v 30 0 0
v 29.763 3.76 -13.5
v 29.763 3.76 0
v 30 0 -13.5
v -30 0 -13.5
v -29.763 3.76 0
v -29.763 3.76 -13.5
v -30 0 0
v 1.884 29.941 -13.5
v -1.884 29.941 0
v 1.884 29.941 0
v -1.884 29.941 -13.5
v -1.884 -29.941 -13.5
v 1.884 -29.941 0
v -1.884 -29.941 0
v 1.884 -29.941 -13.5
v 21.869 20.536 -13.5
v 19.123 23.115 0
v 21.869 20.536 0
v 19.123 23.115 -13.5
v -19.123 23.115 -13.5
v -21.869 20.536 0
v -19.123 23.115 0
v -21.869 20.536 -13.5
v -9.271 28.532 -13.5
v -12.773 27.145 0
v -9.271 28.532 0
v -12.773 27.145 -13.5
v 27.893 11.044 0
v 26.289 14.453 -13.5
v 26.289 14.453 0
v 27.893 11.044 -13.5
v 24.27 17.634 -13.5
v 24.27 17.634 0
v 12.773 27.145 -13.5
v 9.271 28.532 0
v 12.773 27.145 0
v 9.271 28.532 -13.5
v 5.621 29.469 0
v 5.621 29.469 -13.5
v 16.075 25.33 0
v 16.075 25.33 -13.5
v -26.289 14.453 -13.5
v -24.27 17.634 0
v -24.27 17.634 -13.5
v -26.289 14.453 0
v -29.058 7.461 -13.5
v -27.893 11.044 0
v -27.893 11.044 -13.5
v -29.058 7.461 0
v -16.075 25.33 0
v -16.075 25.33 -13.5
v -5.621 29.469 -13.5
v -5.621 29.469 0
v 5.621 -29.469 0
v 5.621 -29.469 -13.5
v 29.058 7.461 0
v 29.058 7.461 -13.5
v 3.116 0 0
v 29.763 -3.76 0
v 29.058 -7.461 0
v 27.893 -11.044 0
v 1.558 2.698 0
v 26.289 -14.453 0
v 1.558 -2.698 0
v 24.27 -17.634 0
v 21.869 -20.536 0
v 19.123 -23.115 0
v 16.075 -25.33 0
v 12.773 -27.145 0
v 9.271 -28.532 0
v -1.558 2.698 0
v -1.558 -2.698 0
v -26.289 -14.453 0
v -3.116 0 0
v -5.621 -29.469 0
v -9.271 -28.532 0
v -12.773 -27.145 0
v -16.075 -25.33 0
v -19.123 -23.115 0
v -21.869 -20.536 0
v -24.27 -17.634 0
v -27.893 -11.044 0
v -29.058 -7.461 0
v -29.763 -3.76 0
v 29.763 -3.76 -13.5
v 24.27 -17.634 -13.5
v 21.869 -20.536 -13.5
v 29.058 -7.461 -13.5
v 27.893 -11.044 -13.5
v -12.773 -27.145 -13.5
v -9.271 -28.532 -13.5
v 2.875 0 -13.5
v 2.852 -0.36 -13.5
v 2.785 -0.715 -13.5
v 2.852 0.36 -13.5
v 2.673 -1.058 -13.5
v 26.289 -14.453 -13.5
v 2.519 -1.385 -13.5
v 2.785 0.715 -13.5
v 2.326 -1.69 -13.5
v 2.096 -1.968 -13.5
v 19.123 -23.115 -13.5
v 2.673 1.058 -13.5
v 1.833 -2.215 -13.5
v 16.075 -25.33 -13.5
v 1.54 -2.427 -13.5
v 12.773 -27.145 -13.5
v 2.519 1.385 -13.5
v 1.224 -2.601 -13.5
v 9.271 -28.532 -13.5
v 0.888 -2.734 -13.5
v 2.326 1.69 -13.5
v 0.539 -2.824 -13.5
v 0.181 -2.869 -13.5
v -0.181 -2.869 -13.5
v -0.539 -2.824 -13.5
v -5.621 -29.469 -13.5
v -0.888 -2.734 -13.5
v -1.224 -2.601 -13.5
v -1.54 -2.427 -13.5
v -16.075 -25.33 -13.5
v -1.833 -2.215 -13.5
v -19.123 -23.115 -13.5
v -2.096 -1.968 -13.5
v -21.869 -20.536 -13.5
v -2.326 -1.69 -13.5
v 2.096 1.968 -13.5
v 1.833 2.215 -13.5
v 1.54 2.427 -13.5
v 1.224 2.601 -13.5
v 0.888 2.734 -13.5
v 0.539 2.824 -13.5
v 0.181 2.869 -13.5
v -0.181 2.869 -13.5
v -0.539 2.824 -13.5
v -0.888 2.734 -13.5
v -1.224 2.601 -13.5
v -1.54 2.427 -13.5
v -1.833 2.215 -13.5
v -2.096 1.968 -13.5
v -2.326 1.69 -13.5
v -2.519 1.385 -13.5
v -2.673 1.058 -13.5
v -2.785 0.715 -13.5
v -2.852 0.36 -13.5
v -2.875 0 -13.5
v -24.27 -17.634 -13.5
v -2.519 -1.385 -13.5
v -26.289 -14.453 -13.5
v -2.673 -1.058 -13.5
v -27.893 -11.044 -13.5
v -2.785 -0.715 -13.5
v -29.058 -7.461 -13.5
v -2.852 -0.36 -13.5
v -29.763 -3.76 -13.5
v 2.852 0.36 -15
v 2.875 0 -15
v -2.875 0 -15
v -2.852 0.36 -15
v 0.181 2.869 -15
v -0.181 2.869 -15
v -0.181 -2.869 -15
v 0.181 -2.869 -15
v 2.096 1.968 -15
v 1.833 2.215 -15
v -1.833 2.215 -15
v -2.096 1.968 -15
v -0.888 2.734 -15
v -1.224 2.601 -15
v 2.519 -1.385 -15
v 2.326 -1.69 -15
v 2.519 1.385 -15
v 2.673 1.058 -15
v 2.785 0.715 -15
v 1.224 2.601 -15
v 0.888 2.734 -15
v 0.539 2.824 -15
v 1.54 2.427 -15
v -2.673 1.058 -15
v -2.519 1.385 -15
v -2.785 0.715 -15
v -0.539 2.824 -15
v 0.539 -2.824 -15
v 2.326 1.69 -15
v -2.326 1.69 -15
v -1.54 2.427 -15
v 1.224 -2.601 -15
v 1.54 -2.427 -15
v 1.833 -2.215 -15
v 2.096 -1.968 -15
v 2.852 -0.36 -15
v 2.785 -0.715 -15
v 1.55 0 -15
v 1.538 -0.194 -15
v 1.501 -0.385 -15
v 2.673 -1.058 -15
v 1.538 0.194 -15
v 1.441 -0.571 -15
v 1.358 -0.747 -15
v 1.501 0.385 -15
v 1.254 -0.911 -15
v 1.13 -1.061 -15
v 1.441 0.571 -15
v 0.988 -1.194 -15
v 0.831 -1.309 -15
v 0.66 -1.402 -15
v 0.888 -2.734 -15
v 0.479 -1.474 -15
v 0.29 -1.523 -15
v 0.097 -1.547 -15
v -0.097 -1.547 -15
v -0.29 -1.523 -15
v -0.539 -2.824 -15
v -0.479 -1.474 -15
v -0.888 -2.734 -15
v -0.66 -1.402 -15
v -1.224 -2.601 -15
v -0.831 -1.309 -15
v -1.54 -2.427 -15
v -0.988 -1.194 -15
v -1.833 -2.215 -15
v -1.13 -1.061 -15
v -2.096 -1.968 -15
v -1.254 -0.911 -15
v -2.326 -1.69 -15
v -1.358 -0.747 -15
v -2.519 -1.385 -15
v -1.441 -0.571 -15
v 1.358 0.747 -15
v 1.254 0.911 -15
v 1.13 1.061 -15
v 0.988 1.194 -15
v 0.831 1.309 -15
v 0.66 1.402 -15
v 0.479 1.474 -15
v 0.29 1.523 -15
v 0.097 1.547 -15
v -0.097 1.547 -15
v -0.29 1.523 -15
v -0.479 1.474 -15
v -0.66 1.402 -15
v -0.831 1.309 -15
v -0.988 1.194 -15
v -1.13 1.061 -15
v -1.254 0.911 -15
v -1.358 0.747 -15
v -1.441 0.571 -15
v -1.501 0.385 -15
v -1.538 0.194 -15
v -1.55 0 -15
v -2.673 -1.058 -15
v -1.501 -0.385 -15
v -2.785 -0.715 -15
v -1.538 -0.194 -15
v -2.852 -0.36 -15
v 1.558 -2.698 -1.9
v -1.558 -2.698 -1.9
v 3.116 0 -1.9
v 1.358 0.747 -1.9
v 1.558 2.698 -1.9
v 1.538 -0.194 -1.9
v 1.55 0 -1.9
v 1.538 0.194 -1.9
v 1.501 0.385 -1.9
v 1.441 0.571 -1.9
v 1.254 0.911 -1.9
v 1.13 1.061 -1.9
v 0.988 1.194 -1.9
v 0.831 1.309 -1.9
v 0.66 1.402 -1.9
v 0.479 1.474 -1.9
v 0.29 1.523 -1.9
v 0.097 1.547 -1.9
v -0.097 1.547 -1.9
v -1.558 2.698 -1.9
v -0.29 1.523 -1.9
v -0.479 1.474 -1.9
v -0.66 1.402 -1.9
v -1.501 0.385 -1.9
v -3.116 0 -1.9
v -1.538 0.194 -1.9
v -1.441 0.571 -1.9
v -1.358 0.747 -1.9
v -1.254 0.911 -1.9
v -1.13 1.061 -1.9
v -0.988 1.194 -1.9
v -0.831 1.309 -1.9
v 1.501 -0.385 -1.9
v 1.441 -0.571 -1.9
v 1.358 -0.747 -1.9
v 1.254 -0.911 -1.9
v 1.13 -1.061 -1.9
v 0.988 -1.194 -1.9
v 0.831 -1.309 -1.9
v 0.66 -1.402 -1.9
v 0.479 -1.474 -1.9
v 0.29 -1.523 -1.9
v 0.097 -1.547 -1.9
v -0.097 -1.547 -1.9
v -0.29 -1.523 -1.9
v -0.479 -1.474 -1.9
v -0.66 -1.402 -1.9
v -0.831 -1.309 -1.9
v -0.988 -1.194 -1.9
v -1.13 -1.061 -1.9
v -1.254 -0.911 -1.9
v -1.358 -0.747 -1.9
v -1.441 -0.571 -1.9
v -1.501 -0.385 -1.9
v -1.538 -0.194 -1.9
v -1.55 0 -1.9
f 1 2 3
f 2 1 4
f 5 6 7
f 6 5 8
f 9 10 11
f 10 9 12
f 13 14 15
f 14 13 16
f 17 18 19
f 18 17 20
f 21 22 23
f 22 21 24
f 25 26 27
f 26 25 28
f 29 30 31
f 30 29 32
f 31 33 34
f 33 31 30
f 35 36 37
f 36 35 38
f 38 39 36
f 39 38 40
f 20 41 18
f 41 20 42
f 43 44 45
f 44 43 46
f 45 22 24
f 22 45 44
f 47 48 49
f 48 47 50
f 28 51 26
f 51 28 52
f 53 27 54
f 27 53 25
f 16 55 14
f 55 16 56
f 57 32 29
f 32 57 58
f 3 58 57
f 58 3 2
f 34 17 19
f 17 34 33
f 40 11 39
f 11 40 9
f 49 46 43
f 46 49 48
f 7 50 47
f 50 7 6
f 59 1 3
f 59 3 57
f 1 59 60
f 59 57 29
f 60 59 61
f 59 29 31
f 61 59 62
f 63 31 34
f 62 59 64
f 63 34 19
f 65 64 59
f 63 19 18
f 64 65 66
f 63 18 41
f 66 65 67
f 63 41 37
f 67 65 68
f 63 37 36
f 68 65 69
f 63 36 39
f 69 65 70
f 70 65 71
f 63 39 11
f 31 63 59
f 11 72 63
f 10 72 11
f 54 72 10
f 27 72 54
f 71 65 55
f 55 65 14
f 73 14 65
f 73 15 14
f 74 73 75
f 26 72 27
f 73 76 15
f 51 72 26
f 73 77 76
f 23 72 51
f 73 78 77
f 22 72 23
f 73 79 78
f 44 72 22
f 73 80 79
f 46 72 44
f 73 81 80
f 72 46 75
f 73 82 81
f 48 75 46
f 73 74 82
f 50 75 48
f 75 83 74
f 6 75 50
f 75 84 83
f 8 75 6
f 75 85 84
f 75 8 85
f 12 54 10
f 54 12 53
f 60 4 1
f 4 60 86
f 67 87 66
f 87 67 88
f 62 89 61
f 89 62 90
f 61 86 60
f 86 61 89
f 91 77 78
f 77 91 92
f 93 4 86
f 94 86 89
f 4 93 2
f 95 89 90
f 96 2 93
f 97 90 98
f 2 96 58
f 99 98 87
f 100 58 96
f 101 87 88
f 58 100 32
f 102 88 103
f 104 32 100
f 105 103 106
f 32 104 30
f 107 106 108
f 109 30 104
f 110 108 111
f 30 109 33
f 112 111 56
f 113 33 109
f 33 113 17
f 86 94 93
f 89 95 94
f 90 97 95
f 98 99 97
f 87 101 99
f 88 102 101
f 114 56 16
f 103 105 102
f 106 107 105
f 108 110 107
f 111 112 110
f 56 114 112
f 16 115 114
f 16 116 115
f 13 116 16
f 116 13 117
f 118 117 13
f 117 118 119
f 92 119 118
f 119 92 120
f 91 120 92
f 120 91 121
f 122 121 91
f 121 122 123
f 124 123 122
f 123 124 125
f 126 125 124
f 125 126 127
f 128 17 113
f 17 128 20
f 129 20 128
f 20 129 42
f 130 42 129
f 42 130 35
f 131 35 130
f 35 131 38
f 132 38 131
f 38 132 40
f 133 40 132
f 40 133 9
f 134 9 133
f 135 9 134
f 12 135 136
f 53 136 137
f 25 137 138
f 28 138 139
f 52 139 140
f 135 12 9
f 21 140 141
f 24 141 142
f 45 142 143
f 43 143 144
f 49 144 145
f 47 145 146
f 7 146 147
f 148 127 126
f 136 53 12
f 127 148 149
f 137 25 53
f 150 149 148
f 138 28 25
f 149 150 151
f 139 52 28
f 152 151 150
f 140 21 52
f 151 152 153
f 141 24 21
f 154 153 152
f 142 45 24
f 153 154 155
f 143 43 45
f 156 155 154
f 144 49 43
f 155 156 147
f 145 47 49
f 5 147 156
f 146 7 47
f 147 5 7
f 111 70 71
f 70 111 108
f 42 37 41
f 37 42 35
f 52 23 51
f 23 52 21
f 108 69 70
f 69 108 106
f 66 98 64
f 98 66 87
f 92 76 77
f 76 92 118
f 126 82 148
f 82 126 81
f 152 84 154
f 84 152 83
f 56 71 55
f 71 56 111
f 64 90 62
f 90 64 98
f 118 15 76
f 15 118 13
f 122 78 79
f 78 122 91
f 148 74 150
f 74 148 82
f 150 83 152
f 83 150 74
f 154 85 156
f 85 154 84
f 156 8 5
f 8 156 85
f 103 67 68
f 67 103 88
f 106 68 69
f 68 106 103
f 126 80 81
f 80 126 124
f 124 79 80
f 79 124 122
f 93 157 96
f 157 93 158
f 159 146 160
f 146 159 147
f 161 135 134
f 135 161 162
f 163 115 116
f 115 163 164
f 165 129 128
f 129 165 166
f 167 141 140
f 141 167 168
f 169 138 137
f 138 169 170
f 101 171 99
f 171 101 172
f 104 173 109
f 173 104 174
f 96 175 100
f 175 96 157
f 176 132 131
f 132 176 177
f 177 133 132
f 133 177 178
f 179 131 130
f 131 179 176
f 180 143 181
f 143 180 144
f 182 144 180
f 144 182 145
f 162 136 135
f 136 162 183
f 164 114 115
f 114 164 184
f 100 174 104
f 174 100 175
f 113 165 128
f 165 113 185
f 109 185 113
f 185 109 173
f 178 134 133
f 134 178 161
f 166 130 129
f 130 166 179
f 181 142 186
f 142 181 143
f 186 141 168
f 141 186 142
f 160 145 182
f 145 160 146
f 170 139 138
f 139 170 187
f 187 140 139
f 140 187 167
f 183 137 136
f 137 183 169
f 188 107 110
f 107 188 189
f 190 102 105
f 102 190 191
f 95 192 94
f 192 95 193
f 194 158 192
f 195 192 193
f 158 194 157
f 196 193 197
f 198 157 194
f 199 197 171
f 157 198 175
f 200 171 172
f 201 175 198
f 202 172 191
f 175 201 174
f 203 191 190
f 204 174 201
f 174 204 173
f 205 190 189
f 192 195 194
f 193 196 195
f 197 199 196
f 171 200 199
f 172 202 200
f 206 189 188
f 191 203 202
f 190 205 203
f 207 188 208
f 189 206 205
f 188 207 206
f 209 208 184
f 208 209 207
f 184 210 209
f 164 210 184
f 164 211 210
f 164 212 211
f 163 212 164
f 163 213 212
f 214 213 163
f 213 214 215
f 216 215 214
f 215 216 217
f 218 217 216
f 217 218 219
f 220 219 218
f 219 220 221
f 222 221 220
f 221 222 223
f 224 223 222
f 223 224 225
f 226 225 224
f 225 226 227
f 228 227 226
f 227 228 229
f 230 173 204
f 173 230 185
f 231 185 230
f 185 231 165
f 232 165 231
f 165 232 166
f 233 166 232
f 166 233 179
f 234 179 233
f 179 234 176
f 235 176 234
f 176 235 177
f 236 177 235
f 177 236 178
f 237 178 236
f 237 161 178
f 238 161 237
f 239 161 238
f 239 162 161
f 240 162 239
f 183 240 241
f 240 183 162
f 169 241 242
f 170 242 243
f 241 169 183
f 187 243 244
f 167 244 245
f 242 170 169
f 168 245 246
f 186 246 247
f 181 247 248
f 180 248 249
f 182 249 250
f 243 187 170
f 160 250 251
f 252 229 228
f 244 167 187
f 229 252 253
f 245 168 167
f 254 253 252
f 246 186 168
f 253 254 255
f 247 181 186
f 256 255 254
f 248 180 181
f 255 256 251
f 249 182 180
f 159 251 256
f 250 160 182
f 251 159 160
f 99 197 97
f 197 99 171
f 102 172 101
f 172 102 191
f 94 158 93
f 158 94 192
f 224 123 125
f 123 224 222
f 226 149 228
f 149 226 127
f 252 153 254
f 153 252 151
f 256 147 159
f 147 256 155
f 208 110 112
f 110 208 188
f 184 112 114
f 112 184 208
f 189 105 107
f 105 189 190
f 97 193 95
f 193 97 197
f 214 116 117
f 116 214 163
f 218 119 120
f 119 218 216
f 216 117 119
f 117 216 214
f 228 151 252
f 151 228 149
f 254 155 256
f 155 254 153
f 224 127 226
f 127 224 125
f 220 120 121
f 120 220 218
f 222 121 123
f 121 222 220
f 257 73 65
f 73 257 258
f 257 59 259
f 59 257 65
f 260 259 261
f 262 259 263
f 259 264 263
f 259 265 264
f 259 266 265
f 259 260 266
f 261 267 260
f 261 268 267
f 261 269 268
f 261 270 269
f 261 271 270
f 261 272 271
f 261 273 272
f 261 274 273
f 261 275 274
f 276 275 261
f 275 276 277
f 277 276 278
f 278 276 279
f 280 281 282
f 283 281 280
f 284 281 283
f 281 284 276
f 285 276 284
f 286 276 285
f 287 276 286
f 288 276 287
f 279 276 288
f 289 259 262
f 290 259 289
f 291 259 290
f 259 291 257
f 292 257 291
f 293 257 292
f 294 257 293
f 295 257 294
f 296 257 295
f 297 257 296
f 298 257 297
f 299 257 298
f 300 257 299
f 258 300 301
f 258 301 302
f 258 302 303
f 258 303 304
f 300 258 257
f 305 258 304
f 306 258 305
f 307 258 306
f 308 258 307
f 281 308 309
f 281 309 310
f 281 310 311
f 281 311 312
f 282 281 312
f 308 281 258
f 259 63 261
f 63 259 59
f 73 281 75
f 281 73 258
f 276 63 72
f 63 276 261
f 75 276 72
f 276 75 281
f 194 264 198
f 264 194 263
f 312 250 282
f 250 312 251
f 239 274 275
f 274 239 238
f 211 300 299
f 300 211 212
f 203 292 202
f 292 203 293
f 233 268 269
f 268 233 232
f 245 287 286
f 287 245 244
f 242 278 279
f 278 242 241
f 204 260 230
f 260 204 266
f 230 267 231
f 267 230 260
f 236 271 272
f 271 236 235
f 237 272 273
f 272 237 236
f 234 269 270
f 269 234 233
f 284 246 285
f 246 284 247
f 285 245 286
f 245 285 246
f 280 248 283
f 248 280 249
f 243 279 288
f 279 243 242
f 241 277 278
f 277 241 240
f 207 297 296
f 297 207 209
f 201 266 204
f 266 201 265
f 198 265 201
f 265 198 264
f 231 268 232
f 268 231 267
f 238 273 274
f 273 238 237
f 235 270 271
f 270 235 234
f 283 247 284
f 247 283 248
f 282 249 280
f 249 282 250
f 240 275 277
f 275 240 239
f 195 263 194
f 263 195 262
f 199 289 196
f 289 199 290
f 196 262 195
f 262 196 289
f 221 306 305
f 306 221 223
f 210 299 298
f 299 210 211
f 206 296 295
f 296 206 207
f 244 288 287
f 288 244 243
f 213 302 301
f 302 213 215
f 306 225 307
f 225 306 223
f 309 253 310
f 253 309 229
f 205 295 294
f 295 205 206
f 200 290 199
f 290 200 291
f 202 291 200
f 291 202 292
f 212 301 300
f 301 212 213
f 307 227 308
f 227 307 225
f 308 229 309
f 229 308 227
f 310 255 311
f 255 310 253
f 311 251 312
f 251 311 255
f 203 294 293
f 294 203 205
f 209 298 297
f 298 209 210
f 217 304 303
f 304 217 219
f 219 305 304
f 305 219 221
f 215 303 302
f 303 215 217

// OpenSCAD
$fn = 50;


difference() {
	union() {
		translate(v = [0, 0, -13.5000000000]) {
			cylinder(h = 13.5000000000, r = 30.0000000000);
		}
		translate(v = [0, 0, -15.0000000000]) {
			cylinder(h = 15, r = 2.8750000000);
		}
	}
	union() {
		translate(v = [0, 0, 0]) {
			rotate(a = [0, 0, 0]) {
				difference() {
					union() {
						translate(v = [0, 0, -1.9000000000]) {
							linear_extrude(height = 1.9000000000) {
								polygon(points = [[3.1158000000, 0.0000000000], [1.5579000000, 2.6983619531], [-1.5579000000, 2.6983619531], [-3.1158000000, 0.0000000000], [-1.5579000000, -2.6983619531], [1.5579000000, -2.6983619531]]);
							}
						}
					}
					union();
				}
			}
		}
		#translate(v = [0, 0, -100.0000000000]) {
			cylinder(h = 200, r = 1.5500000000);
		}
	}
}
